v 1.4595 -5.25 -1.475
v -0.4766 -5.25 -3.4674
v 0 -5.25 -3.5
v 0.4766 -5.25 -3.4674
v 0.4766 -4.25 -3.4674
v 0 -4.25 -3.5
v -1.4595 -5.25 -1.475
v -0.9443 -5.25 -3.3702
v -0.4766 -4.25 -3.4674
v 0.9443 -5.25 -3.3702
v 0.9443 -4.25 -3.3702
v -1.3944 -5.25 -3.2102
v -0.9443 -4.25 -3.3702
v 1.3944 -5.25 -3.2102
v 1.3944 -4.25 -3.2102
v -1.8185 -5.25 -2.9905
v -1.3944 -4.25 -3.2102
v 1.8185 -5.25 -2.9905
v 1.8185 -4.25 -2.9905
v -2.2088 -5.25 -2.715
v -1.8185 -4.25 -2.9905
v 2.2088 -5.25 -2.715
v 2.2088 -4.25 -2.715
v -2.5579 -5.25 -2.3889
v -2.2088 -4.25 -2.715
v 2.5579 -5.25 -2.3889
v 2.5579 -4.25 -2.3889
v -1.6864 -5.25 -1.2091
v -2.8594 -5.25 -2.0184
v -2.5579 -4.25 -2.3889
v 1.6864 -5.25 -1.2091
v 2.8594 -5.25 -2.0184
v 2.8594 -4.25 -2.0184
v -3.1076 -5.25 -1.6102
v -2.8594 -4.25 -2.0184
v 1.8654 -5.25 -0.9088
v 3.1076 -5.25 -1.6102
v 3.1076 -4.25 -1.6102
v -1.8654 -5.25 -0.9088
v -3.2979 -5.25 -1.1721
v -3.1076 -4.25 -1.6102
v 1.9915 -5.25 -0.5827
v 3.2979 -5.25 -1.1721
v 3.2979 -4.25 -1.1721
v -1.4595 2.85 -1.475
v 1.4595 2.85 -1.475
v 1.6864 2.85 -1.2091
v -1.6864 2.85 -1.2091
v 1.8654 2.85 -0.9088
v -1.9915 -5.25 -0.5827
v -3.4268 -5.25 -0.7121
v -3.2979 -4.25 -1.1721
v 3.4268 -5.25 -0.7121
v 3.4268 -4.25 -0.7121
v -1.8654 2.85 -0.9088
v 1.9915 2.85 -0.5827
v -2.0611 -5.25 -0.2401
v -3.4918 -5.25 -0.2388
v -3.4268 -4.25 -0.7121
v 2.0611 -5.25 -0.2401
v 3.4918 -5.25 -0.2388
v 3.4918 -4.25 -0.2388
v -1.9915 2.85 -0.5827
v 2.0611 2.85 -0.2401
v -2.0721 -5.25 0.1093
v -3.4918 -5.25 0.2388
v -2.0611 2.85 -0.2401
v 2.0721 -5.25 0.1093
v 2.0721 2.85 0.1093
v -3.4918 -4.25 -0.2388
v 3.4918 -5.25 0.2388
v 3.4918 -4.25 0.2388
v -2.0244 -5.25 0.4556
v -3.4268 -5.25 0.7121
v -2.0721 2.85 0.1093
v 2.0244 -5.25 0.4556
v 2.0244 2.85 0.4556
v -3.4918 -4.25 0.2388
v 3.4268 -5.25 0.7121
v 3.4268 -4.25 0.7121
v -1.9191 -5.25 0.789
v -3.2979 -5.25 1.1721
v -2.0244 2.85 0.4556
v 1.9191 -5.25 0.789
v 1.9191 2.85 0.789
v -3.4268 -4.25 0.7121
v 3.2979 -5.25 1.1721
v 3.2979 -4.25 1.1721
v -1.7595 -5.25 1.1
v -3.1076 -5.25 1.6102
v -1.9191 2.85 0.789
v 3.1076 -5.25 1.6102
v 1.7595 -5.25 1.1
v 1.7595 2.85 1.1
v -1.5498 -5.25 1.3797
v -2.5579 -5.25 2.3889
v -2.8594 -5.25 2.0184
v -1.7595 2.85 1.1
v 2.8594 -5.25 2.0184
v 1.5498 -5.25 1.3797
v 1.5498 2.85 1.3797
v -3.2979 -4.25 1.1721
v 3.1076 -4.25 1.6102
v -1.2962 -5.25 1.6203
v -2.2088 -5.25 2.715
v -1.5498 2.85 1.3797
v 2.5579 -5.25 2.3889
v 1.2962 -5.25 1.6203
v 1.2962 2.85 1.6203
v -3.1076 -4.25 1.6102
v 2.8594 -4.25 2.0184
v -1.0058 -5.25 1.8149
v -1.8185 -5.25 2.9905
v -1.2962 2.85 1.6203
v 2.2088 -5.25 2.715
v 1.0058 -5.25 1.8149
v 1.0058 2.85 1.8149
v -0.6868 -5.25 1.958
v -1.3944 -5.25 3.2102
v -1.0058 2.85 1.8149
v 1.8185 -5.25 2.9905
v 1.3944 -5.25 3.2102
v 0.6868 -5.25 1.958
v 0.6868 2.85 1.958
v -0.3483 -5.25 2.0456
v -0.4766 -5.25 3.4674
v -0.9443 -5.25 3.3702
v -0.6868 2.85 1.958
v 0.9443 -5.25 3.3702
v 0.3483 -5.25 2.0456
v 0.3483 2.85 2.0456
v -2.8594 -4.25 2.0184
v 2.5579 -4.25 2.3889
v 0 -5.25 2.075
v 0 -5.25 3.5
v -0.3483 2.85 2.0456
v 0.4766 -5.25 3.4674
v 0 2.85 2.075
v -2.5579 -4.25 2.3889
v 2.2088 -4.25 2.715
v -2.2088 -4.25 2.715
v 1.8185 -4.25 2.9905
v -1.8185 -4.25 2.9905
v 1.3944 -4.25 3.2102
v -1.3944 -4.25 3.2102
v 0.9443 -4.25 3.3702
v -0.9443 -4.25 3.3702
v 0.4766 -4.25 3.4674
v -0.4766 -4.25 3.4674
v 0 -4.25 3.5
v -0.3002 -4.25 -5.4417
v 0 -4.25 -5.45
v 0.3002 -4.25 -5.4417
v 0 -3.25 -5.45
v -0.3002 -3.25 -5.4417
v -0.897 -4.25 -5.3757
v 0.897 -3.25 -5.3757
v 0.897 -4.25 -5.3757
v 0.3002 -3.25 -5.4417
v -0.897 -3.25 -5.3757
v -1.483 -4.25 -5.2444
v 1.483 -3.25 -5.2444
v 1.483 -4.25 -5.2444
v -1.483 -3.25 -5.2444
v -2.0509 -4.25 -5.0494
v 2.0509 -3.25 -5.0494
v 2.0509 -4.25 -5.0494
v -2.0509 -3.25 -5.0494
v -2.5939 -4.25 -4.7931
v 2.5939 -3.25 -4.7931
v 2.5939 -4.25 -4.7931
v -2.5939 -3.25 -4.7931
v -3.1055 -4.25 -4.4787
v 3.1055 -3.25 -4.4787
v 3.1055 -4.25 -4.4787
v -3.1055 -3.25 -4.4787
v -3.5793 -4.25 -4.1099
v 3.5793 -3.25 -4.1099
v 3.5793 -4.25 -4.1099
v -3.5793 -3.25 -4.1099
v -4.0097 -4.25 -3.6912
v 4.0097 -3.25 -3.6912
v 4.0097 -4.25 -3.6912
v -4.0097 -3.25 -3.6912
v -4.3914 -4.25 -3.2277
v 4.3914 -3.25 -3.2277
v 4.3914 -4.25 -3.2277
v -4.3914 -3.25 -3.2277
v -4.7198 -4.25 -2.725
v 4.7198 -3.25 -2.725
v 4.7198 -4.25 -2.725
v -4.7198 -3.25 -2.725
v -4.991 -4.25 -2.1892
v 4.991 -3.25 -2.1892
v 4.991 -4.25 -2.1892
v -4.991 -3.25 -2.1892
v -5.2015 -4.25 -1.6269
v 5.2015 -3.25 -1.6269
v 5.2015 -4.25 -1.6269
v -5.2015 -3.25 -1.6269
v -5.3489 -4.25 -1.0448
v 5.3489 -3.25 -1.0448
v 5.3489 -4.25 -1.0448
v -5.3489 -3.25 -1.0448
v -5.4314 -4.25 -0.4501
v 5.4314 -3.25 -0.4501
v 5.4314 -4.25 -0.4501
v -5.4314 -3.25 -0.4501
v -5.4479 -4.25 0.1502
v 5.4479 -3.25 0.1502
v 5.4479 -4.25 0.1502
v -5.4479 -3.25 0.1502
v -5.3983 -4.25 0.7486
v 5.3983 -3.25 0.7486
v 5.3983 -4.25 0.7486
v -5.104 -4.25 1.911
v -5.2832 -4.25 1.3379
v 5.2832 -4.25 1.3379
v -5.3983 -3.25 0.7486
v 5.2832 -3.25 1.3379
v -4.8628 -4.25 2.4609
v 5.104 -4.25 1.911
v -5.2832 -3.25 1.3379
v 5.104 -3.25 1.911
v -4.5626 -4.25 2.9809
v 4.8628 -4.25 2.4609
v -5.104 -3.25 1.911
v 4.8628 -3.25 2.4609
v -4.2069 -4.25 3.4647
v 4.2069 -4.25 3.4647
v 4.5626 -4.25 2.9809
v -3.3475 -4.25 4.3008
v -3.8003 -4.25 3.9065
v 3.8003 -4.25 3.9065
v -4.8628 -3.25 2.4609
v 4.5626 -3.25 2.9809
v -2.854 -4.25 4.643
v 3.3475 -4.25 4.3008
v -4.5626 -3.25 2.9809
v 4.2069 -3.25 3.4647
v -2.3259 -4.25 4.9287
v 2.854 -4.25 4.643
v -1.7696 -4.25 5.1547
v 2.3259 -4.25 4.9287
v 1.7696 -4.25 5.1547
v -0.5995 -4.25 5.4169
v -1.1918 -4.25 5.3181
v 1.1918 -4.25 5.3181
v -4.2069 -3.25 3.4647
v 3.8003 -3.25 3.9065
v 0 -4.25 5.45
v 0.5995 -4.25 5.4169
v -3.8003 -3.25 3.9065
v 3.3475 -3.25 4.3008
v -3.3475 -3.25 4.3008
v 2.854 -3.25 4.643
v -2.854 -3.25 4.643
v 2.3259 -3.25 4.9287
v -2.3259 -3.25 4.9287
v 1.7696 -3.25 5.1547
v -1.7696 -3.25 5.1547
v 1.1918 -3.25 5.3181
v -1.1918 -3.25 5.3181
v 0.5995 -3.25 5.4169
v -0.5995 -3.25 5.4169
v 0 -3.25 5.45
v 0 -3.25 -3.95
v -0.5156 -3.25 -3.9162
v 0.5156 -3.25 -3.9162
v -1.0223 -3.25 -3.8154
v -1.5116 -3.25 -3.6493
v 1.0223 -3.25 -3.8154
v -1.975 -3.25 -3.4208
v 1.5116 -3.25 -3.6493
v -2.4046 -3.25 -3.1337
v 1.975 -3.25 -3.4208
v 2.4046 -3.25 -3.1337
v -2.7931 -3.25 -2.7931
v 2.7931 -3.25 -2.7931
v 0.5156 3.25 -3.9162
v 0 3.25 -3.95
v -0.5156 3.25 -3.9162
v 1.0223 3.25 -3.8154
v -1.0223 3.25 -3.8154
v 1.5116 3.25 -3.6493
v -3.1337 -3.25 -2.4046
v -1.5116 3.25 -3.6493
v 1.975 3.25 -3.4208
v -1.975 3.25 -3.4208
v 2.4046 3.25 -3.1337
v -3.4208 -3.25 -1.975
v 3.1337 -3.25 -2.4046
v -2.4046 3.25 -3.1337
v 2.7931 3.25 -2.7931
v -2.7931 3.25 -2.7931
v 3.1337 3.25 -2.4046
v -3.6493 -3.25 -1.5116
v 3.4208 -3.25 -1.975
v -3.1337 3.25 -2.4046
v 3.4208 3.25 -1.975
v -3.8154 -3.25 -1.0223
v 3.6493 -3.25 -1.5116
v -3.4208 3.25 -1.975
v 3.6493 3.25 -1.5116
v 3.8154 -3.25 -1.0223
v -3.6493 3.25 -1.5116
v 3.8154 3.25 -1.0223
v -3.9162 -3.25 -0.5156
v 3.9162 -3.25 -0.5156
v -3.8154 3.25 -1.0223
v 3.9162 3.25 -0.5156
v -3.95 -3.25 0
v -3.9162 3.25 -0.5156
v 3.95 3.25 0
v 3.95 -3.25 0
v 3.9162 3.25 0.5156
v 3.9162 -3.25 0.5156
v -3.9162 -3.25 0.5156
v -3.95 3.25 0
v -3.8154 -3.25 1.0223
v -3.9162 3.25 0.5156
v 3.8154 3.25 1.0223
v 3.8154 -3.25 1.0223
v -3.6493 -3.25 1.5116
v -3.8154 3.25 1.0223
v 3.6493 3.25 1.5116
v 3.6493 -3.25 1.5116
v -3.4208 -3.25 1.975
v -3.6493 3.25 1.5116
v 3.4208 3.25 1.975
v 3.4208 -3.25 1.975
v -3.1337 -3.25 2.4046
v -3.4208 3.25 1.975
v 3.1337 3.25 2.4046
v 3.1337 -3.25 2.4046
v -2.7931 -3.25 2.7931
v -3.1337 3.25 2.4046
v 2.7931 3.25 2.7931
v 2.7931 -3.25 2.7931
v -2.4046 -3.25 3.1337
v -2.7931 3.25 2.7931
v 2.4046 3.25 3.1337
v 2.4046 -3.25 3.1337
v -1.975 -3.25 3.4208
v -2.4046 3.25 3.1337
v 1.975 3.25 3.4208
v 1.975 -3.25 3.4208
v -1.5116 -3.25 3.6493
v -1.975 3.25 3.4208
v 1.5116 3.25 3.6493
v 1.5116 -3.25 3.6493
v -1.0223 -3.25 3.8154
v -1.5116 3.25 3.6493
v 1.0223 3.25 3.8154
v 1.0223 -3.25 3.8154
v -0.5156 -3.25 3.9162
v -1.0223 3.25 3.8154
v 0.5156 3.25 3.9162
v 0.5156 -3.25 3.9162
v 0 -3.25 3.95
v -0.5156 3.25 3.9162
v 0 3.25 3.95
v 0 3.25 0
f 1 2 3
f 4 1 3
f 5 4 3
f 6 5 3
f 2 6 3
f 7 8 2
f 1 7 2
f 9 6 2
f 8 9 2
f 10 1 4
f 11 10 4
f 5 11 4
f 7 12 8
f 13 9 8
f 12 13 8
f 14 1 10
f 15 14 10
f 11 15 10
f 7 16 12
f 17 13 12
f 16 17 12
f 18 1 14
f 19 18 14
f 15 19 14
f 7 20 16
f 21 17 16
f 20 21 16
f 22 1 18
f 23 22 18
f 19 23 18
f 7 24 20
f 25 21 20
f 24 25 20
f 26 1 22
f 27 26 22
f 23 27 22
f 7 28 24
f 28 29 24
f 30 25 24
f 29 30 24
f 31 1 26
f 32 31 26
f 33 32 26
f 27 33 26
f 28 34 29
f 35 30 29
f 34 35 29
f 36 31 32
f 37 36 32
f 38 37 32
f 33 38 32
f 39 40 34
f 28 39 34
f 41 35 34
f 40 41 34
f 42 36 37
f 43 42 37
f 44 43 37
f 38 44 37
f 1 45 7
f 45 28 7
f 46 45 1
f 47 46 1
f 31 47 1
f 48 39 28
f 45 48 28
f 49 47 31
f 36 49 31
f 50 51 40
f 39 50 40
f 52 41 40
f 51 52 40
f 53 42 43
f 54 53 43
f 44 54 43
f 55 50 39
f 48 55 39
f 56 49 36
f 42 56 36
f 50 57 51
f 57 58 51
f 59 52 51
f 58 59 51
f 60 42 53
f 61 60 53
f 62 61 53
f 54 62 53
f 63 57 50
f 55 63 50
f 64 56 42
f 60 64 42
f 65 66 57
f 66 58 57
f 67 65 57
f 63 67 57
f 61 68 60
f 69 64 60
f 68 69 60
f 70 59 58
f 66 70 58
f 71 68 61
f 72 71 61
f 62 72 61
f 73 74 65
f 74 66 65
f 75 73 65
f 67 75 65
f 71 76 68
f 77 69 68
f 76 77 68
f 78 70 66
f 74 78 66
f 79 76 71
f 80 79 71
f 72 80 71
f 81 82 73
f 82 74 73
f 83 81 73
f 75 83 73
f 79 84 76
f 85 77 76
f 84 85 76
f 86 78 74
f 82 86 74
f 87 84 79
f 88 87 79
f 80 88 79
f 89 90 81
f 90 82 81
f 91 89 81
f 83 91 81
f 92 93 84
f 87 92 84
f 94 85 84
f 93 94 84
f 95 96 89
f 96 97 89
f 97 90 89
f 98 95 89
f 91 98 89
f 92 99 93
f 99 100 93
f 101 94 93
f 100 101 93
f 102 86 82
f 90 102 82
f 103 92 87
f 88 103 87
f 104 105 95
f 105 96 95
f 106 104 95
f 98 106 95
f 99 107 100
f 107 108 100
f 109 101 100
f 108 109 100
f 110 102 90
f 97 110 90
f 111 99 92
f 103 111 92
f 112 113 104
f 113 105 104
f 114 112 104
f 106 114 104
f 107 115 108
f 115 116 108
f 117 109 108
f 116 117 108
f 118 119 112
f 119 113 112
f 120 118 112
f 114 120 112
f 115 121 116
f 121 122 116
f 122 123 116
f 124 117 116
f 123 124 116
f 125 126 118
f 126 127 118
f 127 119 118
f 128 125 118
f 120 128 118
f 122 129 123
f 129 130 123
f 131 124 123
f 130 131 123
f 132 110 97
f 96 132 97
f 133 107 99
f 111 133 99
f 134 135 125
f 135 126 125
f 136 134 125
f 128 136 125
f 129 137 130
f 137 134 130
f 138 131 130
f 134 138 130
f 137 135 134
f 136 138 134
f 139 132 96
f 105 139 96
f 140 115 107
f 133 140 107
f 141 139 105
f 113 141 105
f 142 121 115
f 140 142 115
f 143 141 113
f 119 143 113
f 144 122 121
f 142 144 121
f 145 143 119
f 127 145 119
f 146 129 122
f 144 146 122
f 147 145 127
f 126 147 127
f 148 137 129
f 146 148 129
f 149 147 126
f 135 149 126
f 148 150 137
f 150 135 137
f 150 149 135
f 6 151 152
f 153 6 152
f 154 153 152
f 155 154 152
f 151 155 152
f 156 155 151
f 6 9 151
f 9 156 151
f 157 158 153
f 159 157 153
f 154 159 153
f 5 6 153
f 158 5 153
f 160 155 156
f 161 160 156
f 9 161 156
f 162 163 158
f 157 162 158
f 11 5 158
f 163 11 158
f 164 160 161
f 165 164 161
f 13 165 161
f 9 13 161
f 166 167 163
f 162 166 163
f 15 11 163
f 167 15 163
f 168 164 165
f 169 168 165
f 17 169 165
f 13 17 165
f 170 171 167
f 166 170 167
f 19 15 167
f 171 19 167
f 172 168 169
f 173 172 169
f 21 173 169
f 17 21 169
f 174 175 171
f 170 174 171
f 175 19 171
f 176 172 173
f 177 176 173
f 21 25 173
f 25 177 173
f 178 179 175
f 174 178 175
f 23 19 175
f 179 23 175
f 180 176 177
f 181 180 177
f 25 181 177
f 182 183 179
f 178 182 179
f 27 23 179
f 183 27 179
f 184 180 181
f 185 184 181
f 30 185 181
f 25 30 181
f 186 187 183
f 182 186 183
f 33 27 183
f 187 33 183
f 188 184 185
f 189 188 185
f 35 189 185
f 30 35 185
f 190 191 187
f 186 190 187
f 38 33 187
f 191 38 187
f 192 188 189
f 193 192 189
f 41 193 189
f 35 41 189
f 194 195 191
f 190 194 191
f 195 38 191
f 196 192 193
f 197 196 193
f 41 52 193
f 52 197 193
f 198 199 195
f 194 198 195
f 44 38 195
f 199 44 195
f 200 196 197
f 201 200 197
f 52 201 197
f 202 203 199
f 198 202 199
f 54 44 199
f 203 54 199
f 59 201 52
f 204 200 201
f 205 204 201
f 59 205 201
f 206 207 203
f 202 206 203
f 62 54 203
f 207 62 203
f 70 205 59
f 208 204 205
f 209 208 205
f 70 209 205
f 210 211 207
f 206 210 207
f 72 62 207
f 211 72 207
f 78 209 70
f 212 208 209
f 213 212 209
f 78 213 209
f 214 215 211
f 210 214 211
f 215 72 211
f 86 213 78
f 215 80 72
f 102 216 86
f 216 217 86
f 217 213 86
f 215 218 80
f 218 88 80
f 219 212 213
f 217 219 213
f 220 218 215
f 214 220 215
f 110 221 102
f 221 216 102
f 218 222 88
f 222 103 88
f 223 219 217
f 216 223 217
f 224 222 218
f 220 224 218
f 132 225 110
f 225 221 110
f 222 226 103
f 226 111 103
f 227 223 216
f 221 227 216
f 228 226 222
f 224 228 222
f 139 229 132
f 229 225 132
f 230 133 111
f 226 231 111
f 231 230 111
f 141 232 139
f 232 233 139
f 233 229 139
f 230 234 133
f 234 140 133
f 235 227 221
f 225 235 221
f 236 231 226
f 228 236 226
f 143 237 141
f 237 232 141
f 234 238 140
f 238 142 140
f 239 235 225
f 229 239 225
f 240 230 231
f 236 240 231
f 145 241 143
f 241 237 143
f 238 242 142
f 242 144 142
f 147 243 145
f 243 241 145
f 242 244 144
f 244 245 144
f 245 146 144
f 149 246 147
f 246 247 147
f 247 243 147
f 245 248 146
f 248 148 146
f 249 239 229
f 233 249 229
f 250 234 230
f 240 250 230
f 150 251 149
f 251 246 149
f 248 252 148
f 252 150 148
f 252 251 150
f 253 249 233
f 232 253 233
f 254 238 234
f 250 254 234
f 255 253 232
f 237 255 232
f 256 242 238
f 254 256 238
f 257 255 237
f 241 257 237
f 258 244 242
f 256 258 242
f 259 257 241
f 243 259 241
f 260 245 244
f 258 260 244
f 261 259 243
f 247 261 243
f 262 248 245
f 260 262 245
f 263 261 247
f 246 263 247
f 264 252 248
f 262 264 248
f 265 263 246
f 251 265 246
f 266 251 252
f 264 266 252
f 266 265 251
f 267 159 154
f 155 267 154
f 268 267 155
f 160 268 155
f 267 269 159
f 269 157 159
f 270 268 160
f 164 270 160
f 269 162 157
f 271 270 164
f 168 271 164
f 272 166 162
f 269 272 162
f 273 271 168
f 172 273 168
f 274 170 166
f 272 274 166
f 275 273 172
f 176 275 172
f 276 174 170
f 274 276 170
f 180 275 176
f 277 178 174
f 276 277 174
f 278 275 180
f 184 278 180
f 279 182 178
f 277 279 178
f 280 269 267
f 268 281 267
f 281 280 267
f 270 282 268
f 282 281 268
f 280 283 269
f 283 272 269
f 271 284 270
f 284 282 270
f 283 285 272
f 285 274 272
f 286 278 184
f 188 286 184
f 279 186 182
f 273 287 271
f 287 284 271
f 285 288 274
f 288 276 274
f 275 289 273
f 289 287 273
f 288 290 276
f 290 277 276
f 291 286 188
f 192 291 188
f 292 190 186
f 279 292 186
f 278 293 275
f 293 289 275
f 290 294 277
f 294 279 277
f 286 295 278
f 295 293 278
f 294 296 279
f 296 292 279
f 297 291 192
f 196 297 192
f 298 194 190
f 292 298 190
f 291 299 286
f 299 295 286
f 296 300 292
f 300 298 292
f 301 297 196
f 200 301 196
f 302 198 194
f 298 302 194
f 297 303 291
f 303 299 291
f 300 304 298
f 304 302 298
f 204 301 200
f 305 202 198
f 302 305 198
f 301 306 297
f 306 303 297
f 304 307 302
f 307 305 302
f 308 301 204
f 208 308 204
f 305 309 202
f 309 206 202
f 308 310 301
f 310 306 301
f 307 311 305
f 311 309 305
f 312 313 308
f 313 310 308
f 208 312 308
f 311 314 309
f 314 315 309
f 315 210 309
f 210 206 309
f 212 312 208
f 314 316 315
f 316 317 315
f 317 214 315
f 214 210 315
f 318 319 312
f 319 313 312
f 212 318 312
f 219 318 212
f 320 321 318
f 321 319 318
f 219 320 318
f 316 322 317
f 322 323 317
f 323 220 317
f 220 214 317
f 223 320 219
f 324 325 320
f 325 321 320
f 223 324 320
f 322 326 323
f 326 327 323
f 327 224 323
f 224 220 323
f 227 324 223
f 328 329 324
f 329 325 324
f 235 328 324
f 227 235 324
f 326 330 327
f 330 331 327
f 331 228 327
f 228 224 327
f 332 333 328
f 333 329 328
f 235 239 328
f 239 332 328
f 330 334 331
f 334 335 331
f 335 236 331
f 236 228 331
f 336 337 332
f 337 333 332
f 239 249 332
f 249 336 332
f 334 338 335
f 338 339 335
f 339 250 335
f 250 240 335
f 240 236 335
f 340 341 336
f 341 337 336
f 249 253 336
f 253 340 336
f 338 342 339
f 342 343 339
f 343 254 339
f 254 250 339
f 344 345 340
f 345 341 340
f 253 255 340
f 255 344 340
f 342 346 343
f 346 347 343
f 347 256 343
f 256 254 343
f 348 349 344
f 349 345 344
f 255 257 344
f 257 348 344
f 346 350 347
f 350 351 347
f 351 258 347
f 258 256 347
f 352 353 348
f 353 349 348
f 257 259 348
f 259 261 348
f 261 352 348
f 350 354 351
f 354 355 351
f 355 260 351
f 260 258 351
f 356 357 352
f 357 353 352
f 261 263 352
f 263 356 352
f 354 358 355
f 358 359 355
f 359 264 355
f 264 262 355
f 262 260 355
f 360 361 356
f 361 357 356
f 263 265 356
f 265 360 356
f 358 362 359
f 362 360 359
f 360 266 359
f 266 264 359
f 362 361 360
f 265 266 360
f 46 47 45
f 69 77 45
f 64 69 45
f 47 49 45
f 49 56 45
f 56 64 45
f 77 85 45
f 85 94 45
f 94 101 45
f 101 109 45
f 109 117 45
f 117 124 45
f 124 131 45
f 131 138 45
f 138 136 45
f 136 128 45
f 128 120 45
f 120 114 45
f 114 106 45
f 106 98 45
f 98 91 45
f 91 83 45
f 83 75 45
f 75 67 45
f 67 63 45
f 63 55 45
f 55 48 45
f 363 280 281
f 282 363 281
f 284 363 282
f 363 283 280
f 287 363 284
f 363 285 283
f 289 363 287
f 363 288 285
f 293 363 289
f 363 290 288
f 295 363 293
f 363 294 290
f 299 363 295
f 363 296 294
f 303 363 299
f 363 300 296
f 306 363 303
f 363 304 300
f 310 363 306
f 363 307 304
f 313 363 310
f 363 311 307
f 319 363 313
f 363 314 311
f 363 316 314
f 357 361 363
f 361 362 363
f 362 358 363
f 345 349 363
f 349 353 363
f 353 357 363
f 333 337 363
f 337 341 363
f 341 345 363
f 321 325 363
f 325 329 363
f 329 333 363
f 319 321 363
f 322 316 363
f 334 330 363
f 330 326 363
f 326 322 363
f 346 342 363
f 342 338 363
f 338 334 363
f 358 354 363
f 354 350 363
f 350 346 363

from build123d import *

# Parameters (mm, degrees)
SKETCH2_R           = 3.95
BOSS_EXTRUDE1_DEPTH = 3.25
SKETCH5_R           = 3.5
BOSS_EXTRUDE4_DEPTH = 2
SKETCH7_R           = 5.45
BOSS_EXTRUDE5_DEPTH = 1
CUT_EXTRUDE1_DEPTH  = 8.1


with BuildPart() as part:
    # Sketch2 → Boss-Extrude1 (new, symmetric)
    with BuildSketch(Plane(origin=(0, 0, 0), x_dir=(1, 0, 0), z_dir=(0, 1, 0))):
        with Locations(Location((0, 0, 0), (0, 0, 90))):
            Circle(SKETCH2_R)
    extrude(amount=BOSS_EXTRUDE1_DEPTH, both=True)

    # Sketch5 → Boss-Extrude4 (add)
    with BuildSketch(Plane.XZ.offset(3.25)):
        with Locations(Location((0, 0, 0), (0, 0, 90))):
            Circle(SKETCH5_R)
    extrude(amount=BOSS_EXTRUDE4_DEPTH)

    # Sketch7 → Boss-Extrude5 (add)
    with BuildSketch(Plane.XZ.offset(3.25)):
        with Locations(Location((0, 0, 0), (0, 0, 270))):
            Circle(SKETCH7_R)
    extrude(amount=BOSS_EXTRUDE5_DEPTH)

    # Sketch6 → Cut-Extrude1 (cut)
    with BuildSketch(Plane.XZ.offset(5.25)):
        with BuildLine():
            ThreePointArc((2.075, 0), (-0.799143979, 1.91493966), (-1.459451952, -1.475))
            Line((-1.459451952, -1.475), (1.459451952, -1.475))
            ThreePointArc((1.459451952, -1.475), (1.91493966, -0.799143979), (2.075, 0))
        make_face()
    extrude(amount=-CUT_EXTRUDE1_DEPTH, mode=Mode.SUBTRACT)


solid = part.part
